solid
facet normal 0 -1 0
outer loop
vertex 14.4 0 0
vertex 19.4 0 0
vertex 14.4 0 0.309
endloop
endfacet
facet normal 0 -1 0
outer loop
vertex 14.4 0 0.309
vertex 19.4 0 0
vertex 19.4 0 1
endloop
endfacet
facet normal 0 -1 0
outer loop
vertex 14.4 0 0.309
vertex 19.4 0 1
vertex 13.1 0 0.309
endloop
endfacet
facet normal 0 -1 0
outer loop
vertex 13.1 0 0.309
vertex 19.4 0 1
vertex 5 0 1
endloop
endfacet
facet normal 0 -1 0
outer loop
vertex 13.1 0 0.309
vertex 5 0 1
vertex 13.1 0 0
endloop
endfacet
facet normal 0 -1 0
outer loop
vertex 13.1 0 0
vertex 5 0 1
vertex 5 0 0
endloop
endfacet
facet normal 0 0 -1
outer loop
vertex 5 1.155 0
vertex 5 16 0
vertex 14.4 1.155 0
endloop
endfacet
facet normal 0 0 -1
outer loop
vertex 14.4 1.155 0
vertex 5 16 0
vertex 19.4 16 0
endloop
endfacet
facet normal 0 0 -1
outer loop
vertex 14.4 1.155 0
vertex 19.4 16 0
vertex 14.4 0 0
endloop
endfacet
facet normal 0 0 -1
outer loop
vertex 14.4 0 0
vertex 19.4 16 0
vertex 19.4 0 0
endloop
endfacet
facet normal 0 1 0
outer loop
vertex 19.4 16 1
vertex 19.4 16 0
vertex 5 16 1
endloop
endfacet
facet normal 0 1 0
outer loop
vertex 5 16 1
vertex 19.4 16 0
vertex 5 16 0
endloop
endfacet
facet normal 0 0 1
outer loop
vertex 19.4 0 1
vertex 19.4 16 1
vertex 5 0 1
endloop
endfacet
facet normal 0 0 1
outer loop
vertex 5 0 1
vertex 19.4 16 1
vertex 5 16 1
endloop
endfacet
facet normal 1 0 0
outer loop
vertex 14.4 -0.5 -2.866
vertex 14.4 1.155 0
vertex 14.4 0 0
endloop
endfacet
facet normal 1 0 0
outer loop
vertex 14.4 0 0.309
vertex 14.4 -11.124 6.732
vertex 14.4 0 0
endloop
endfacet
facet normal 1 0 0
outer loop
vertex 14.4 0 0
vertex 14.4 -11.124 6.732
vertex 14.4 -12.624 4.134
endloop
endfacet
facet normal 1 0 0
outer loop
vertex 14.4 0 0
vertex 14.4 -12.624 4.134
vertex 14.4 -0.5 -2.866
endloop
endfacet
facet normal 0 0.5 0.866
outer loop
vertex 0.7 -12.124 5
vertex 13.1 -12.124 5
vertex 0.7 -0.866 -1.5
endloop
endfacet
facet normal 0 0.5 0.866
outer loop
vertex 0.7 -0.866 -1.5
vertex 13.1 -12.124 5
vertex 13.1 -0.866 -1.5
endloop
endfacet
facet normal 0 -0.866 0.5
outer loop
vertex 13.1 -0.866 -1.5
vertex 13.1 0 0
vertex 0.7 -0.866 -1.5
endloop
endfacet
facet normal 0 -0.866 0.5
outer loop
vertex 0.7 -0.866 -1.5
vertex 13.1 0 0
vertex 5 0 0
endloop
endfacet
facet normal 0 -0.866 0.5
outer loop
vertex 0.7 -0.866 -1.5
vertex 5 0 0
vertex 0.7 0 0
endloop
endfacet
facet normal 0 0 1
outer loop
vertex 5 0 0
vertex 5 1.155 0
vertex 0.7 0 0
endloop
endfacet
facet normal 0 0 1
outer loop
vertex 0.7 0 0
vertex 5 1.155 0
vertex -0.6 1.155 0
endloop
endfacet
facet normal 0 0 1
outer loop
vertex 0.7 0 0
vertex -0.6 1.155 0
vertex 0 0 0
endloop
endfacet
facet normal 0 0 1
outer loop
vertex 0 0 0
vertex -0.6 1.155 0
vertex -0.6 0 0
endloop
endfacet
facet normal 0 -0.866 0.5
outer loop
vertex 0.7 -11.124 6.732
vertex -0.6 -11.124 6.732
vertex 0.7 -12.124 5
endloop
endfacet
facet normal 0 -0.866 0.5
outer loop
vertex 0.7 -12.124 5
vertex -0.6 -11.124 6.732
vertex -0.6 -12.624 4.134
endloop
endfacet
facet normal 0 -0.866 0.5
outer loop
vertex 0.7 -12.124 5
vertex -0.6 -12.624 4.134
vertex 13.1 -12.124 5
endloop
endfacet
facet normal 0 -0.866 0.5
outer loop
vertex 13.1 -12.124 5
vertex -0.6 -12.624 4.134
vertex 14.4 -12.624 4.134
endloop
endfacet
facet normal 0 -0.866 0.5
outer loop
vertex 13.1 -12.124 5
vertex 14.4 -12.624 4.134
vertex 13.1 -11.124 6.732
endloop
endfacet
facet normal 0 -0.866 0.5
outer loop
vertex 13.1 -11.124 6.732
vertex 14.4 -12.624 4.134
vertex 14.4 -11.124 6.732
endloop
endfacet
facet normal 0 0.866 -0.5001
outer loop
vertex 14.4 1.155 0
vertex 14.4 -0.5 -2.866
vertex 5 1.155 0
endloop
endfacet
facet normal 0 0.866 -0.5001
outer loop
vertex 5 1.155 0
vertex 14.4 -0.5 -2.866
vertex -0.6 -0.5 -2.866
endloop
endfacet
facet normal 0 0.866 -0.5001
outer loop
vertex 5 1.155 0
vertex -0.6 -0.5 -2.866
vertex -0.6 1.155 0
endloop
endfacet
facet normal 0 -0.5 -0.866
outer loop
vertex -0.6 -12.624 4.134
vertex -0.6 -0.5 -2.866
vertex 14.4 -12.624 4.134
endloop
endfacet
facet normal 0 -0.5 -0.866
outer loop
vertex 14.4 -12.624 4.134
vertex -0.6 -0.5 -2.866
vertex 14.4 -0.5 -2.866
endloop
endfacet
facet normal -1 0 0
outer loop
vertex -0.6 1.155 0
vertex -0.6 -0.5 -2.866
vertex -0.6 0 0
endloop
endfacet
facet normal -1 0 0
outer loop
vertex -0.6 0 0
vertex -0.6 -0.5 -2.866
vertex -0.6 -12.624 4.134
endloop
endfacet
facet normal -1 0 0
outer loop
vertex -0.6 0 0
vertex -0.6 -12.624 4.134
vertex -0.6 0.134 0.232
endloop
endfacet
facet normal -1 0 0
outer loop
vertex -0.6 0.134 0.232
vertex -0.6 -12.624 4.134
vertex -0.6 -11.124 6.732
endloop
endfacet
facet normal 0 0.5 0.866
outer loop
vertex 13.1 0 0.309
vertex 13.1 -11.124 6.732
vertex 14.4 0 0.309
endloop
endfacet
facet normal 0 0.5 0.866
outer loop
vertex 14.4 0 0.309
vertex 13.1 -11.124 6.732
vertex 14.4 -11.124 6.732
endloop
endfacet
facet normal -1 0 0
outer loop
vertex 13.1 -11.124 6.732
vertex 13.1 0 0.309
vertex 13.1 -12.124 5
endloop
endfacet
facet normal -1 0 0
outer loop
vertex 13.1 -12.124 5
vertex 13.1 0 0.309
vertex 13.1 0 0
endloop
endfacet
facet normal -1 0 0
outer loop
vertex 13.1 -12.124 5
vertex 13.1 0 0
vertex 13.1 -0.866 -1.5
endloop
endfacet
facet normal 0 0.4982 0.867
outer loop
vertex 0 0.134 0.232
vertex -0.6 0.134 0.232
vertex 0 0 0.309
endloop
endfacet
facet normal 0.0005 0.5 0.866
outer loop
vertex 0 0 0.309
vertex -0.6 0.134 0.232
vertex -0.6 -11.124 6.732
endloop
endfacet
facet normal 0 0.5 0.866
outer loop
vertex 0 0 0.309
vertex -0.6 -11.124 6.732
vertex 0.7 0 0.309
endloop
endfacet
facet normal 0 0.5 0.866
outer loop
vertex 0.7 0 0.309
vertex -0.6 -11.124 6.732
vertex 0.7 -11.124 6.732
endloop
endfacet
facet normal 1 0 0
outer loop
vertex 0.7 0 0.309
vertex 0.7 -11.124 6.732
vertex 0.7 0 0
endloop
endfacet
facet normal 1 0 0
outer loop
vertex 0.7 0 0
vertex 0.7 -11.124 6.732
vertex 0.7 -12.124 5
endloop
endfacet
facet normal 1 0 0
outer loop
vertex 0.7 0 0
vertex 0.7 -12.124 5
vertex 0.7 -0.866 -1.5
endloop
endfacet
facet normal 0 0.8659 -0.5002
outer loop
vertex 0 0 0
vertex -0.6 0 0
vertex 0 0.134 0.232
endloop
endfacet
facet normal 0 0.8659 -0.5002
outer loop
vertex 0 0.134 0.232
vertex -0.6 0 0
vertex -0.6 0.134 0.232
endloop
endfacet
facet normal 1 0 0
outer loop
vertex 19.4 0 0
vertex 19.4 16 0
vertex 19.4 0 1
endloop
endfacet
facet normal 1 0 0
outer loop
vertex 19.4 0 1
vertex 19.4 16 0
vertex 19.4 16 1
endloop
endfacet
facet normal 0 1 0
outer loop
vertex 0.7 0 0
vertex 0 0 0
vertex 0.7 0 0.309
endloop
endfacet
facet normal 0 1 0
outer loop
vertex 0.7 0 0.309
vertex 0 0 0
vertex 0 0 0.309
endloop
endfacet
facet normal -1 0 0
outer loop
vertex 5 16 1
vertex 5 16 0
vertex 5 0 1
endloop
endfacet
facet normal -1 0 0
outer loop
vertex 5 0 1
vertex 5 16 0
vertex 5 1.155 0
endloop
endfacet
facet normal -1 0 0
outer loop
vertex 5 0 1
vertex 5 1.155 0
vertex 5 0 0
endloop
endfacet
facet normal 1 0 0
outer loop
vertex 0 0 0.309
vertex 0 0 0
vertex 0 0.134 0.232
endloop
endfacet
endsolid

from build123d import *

# Parameters (mm, degrees)
SKIZZE1_W                       = 14.4
SKIZZE1_H                       = 16
AUFSATZ_LINEAR_AUSTRAGEN1_DEPTH = 1
AUFSATZ_LINEAR_AUSTRAGEN4_DEPTH = 15
SKIZZE9_W                       = 1.3
SKIZZE9_H                       = 13
AUFSATZ_LINEAR_AUSTRAGEN5_DEPTH = 2
SKIZZE10_W                      = 1
SKIZZE10_H                      = 16
AUFSATZ_LINEAR_AUSTRAGEN6_DEPTH = 5
SKIZZE13_W                      = 1
SKIZZE13_H                      = 16
SCHNITT_LINEAR_AUSTRAGEN4_DEPTH = 5


with BuildPart() as part:
    # Skizze1 → Aufsatz-Linear austragen1 (new body)
    with BuildSketch(Plane.XY):
        with Locations((7.2, 8)):
            Rectangle(SKIZZE1_W, SKIZZE1_H)
    extrude(amount=AUFSATZ_LINEAR_AUSTRAGEN1_DEPTH)

    # Skizze4 → Aufsatz-Linear austragen4 (add)
    with BuildSketch(Plane(origin=(14.4, 0, 0), x_dir=(0, 0, -1), z_dir=(1, 0, 0))):
        Polygon((0, 1.154700538), (0, 0), (1.5, -0.866025404), (-5, -12.124355653), (-4.133974596, -12.624355653), (2.866025404, -0.5), align=None)
    extrude(amount=-AUFSATZ_LINEAR_AUSTRAGEN4_DEPTH)

    # Skizze9 → Aufsatz-Linear austragen5 (add)
    with BuildSketch(Plane(origin=(0, -0.866025404, -1.5), x_dir=(1, 0, 0), z_dir=(0, 0.49999999999999484, 0.8660254037844418))):
        with Locations((13.75, -6.5)):
            Rectangle(SKIZZE9_W, SKIZZE9_H)
        with Locations((0.05, -6.5)):
            Rectangle(SKIZZE9_W, SKIZZE9_H)
    extrude(amount=AUFSATZ_LINEAR_AUSTRAGEN5_DEPTH)

    # Skizze10 → Aufsatz-Linear austragen6 (add)
    with BuildSketch(Plane(origin=(14.4, 0, 0), x_dir=(0, 0, -1), z_dir=(1, 0, 0))):
        with Locations((-0.5, 8)):
            Rectangle(SKIZZE10_W, SKIZZE10_H)
    extrude(amount=AUFSATZ_LINEAR_AUSTRAGEN6_DEPTH)

    # Skizze13 → Schnitt-Linear austragen4 (cut)
    with BuildSketch(Plane.ZY):
        with Locations((0.5, 8)):
            Rectangle(SKIZZE13_W, SKIZZE13_H)
    extrude(amount=-SCHNITT_LINEAR_AUSTRAGEN4_DEPTH, mode=Mode.SUBTRACT)


solid = part.part
